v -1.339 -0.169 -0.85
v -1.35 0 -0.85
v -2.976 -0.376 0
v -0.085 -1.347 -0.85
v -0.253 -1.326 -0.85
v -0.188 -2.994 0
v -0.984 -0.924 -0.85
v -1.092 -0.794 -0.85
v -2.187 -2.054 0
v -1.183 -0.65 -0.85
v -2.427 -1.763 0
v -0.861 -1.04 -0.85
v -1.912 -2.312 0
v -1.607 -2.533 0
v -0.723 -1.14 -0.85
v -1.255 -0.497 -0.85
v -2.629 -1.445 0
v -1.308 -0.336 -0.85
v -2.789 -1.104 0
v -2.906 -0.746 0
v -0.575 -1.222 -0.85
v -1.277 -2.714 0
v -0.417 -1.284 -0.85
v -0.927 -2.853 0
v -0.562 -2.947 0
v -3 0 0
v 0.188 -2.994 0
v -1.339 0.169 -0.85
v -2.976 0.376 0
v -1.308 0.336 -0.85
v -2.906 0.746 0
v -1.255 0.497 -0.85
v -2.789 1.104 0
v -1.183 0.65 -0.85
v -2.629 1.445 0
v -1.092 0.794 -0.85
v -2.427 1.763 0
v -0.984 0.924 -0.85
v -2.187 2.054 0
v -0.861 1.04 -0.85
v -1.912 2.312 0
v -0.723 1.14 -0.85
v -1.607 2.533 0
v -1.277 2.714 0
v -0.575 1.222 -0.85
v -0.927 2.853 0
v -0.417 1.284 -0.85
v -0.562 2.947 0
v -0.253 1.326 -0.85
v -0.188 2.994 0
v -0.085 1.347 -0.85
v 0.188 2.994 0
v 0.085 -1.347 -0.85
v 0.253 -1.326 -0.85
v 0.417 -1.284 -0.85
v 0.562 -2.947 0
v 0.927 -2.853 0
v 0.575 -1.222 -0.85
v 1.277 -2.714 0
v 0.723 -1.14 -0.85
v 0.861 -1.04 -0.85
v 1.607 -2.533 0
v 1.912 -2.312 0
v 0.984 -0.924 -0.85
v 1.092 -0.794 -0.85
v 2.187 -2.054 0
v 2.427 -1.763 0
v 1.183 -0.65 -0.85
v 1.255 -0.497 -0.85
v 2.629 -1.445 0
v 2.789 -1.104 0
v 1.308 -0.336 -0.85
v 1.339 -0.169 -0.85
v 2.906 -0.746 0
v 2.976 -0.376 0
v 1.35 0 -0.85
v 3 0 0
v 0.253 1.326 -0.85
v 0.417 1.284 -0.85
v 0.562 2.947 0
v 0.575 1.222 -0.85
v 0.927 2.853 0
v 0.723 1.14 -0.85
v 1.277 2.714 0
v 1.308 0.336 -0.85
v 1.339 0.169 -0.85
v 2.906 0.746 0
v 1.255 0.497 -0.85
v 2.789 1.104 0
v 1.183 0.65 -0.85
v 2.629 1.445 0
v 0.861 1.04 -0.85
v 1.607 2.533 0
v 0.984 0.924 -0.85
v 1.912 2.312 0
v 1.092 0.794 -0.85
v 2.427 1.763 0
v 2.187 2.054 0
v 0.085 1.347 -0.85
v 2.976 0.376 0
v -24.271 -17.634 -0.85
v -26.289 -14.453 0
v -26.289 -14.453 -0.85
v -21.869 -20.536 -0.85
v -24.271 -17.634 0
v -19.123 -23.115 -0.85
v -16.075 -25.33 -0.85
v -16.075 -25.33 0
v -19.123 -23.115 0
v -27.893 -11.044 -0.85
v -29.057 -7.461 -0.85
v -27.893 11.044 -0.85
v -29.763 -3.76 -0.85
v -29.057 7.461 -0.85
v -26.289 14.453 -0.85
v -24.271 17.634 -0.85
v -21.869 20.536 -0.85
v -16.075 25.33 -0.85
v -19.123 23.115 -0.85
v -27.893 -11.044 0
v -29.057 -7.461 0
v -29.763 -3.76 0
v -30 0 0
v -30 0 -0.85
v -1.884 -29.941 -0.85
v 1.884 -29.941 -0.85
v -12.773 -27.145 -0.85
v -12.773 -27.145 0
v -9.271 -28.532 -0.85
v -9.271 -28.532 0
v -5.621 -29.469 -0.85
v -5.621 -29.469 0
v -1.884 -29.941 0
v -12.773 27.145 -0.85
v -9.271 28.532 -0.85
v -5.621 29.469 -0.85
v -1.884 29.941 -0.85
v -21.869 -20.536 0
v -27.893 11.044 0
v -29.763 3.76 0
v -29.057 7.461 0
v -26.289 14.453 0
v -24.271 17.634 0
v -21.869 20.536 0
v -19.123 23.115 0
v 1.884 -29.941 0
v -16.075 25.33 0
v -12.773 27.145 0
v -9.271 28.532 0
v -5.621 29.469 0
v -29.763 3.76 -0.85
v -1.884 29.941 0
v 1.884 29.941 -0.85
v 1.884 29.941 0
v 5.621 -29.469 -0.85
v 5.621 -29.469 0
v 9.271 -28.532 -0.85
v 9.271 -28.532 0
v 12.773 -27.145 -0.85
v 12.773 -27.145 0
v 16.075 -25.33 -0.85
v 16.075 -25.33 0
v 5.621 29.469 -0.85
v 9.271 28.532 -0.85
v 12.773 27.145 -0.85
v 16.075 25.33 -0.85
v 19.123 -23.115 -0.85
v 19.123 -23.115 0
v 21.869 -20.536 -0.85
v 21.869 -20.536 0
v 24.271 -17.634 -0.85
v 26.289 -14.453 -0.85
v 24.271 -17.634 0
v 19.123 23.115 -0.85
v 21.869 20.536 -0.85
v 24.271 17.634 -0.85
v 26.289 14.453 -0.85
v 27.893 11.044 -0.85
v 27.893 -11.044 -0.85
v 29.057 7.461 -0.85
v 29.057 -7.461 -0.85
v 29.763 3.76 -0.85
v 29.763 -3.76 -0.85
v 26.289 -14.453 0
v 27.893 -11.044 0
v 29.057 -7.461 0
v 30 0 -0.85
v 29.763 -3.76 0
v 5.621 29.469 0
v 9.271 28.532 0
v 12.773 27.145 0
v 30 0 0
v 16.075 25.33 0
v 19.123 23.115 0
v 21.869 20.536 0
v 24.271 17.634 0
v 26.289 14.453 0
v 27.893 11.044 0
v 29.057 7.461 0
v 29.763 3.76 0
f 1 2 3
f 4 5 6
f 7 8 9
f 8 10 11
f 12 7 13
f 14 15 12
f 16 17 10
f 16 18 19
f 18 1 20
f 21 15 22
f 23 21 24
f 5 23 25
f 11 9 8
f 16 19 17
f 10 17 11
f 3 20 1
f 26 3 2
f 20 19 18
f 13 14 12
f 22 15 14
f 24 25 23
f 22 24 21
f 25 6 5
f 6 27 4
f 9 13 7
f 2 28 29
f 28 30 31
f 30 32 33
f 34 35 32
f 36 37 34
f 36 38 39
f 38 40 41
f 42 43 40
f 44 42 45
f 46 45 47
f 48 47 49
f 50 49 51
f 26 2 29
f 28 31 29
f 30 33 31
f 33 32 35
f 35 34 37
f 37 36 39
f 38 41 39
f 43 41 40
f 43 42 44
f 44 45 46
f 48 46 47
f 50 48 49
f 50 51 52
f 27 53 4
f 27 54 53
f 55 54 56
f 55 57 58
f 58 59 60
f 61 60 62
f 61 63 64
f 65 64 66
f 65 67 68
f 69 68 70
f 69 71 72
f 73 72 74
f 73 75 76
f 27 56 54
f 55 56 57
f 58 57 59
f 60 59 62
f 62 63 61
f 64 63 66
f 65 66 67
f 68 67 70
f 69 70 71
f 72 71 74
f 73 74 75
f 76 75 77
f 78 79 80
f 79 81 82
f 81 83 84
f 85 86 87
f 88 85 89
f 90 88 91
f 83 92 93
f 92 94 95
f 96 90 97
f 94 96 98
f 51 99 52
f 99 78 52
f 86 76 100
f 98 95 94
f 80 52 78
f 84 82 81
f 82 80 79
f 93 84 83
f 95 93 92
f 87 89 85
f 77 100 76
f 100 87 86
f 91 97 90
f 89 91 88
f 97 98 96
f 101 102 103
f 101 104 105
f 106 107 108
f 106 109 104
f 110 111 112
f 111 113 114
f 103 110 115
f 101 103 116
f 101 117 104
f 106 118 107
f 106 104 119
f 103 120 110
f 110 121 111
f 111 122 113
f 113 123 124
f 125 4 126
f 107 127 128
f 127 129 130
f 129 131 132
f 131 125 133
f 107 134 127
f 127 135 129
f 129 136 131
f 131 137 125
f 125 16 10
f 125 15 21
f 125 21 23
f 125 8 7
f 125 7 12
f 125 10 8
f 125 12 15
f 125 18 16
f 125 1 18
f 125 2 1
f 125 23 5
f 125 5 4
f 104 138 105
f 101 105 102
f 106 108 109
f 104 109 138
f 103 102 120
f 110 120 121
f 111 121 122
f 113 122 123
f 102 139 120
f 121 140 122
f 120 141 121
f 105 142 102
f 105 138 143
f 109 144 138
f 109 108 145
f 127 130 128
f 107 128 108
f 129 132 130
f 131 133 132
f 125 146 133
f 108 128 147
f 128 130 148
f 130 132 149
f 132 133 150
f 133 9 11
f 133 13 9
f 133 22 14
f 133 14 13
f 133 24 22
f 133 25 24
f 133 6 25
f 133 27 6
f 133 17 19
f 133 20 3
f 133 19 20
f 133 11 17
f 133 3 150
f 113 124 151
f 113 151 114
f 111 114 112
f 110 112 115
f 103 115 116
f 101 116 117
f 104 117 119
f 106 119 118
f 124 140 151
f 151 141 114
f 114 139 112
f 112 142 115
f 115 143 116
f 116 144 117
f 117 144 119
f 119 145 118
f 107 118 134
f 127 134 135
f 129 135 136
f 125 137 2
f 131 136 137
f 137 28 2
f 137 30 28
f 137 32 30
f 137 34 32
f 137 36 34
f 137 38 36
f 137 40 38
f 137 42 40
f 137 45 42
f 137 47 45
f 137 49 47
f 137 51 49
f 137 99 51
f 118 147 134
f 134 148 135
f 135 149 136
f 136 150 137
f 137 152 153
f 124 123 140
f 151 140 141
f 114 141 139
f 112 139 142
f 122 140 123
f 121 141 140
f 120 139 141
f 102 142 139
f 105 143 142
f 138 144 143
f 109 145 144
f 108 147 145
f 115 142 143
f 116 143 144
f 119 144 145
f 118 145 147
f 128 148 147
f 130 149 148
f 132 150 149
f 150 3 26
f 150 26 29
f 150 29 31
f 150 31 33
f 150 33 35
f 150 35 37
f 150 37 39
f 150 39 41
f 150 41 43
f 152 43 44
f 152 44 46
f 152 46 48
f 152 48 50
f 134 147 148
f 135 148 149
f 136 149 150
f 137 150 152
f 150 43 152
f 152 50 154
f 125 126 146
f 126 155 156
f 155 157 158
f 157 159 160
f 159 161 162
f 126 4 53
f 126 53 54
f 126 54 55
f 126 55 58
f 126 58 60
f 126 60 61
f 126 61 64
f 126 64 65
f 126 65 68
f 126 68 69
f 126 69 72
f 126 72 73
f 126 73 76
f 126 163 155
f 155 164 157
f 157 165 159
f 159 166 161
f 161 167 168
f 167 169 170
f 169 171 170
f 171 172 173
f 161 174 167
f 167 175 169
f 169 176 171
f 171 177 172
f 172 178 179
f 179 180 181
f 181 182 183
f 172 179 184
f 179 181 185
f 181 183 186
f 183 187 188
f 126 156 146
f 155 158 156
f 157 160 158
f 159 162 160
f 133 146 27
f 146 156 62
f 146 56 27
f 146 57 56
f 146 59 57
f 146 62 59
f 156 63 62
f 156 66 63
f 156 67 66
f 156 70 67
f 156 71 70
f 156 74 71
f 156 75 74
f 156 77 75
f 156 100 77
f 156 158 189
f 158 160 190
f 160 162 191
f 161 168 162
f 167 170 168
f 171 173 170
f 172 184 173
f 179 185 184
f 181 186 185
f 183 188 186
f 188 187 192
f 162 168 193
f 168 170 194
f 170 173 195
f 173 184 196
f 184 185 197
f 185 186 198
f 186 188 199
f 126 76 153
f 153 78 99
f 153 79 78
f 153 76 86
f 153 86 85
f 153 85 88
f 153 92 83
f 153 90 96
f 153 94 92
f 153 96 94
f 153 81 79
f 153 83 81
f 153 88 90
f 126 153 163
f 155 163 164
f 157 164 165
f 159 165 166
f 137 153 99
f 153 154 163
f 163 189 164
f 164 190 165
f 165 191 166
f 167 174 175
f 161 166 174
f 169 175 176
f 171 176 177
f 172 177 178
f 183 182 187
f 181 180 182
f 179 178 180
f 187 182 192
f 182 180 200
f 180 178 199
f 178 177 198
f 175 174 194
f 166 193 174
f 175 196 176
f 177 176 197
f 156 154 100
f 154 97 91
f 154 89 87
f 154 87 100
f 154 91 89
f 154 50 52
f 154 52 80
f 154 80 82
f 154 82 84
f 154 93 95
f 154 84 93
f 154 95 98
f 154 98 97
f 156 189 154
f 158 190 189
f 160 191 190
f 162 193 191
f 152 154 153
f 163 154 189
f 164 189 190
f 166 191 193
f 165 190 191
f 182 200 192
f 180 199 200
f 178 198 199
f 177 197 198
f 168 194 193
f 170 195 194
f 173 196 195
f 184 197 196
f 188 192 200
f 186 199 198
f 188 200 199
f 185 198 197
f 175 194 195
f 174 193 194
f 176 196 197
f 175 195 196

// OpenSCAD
$fn = 50;

difference() {
	union() {
		translate(v = [0, 0, -0.85]) {
			cylinder(h = 0.85, r = 30.0);
		}
	}
	union() {
		translate(v = [0, 0, 0]) {
			rotate(a = [0, 0, 0]) {
				difference() {
					union() {
						translate(v = [0, 0, -3.85]) {
							cylinder(h = 3.85, r = 1.0);
						}
						translate(v = [0, 0, -0.85]) {
							cylinder(h = 0.85, r1 = 1.35, r2 = 3.0);
						}
						translate(v = [0, 0, -3.85]) {
							cylinder(h = 3.85, r = 1.35);
						}
						translate(v = [0, 0, -3.85]) {
							cylinder(h = 3.85, r = 1.0);
						}
					}
					union();
				}
			}
		}
	}
}
